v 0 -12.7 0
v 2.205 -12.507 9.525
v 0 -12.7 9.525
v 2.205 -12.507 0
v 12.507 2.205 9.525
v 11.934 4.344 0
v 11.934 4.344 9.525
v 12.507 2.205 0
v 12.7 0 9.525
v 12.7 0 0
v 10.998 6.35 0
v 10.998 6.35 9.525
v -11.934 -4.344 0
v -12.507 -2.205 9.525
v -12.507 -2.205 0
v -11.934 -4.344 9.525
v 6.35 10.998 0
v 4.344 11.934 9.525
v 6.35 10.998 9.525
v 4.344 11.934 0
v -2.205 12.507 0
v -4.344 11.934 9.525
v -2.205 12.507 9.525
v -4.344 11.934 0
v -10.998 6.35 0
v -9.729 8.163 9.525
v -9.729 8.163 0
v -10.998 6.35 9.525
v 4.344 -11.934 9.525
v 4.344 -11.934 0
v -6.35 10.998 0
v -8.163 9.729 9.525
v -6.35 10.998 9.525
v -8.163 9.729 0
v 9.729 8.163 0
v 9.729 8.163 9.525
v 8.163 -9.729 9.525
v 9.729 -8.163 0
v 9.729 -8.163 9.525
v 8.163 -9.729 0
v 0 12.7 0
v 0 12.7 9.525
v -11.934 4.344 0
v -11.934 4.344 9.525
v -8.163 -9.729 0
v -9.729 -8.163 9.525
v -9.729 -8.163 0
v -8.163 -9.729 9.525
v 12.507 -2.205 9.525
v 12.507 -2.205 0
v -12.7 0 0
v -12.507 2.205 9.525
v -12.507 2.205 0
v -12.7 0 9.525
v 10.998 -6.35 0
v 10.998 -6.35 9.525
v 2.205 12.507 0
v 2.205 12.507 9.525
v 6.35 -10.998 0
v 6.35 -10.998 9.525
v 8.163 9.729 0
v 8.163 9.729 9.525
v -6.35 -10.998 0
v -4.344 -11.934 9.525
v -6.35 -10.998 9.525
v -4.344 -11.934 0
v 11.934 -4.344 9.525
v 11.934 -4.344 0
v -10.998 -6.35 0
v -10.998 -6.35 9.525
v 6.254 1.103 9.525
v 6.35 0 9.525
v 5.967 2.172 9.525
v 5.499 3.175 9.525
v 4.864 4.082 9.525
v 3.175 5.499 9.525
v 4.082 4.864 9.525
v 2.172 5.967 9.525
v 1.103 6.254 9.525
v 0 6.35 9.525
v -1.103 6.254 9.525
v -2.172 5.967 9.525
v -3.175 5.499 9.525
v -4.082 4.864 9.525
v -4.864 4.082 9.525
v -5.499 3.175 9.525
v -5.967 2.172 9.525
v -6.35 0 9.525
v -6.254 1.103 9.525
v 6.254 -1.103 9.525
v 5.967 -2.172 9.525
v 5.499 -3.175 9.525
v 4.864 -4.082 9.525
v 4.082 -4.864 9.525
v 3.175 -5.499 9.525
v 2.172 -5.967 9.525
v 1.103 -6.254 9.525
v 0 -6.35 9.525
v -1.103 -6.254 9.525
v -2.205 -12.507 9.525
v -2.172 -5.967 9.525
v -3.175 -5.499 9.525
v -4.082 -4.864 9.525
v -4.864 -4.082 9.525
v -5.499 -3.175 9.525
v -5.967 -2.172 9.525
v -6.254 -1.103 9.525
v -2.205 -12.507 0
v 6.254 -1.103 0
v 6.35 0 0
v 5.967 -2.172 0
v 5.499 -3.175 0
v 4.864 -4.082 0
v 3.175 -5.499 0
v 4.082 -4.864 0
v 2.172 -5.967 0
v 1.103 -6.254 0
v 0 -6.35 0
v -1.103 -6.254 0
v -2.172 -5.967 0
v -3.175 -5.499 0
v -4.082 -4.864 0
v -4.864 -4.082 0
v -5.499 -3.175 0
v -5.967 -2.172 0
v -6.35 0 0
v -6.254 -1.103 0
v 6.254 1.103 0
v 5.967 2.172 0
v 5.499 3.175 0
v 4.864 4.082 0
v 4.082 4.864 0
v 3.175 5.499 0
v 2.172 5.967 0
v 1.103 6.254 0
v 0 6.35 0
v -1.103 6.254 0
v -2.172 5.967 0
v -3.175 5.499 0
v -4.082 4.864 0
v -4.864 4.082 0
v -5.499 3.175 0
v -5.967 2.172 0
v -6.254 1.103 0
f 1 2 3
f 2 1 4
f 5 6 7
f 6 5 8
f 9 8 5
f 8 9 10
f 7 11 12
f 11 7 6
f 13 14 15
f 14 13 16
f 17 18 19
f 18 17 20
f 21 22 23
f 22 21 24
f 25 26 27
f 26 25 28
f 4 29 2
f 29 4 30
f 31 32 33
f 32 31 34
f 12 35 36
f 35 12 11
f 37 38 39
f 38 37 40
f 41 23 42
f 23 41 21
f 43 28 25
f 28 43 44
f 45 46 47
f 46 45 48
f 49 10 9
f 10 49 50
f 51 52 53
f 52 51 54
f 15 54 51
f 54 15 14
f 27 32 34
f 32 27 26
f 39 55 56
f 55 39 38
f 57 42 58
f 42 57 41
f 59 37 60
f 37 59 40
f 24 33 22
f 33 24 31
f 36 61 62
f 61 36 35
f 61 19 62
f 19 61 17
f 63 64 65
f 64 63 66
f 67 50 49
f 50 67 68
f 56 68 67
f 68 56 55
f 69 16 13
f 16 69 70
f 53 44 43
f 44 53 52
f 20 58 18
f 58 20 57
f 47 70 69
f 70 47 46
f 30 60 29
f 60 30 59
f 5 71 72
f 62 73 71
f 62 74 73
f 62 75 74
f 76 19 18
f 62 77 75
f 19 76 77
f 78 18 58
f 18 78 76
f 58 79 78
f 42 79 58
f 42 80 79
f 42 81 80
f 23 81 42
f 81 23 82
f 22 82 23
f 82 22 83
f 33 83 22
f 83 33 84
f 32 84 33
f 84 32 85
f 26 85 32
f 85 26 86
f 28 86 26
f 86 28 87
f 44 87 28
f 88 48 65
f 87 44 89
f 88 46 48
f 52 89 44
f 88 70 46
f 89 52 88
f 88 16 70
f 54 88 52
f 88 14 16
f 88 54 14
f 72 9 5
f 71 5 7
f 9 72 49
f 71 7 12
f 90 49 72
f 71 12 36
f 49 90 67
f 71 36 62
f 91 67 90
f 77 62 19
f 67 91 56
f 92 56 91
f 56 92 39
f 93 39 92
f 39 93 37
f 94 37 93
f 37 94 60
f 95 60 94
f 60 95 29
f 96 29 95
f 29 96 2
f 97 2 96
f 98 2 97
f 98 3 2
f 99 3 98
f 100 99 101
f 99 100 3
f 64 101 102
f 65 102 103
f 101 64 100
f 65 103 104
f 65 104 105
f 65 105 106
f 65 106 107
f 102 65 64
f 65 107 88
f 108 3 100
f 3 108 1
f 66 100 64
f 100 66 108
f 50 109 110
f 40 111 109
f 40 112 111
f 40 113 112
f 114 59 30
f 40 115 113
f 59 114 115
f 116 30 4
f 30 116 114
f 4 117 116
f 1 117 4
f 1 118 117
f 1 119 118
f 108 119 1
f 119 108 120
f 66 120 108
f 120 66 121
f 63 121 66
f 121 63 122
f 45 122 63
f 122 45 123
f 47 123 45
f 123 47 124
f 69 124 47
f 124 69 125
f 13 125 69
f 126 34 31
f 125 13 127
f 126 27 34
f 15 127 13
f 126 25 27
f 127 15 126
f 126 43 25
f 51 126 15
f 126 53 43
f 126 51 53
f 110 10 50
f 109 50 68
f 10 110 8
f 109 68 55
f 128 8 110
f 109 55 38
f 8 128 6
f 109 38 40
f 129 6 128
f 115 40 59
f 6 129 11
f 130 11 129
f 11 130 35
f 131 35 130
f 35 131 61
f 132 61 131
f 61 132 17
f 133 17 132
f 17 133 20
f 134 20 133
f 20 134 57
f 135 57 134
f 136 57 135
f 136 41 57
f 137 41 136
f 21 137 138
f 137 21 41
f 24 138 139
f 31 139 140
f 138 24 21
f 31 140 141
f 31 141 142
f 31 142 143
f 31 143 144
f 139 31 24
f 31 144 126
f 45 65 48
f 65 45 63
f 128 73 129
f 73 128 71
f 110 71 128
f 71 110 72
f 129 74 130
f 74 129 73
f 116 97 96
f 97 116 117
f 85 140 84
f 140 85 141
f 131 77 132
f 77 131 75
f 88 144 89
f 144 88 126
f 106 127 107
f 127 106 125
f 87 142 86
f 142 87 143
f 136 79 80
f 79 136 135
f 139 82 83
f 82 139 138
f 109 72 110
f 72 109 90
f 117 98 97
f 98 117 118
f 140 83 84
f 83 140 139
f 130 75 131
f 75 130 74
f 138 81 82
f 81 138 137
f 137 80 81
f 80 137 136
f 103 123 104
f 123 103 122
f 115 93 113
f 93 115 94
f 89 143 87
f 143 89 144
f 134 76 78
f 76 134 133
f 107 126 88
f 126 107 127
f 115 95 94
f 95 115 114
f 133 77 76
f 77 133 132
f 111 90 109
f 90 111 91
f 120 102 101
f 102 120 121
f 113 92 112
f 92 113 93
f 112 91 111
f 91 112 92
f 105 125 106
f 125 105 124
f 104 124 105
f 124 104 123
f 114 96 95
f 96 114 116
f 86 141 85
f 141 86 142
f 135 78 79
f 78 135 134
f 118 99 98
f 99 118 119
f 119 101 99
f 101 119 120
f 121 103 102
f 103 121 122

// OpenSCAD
$fn=36;
height=0.375*25.4;
outer=0.5*25.4;
inner=0.25*25.4;

difference() {
cylinder(height,outer,outer);

cylinder(height,inner,inner);

}
